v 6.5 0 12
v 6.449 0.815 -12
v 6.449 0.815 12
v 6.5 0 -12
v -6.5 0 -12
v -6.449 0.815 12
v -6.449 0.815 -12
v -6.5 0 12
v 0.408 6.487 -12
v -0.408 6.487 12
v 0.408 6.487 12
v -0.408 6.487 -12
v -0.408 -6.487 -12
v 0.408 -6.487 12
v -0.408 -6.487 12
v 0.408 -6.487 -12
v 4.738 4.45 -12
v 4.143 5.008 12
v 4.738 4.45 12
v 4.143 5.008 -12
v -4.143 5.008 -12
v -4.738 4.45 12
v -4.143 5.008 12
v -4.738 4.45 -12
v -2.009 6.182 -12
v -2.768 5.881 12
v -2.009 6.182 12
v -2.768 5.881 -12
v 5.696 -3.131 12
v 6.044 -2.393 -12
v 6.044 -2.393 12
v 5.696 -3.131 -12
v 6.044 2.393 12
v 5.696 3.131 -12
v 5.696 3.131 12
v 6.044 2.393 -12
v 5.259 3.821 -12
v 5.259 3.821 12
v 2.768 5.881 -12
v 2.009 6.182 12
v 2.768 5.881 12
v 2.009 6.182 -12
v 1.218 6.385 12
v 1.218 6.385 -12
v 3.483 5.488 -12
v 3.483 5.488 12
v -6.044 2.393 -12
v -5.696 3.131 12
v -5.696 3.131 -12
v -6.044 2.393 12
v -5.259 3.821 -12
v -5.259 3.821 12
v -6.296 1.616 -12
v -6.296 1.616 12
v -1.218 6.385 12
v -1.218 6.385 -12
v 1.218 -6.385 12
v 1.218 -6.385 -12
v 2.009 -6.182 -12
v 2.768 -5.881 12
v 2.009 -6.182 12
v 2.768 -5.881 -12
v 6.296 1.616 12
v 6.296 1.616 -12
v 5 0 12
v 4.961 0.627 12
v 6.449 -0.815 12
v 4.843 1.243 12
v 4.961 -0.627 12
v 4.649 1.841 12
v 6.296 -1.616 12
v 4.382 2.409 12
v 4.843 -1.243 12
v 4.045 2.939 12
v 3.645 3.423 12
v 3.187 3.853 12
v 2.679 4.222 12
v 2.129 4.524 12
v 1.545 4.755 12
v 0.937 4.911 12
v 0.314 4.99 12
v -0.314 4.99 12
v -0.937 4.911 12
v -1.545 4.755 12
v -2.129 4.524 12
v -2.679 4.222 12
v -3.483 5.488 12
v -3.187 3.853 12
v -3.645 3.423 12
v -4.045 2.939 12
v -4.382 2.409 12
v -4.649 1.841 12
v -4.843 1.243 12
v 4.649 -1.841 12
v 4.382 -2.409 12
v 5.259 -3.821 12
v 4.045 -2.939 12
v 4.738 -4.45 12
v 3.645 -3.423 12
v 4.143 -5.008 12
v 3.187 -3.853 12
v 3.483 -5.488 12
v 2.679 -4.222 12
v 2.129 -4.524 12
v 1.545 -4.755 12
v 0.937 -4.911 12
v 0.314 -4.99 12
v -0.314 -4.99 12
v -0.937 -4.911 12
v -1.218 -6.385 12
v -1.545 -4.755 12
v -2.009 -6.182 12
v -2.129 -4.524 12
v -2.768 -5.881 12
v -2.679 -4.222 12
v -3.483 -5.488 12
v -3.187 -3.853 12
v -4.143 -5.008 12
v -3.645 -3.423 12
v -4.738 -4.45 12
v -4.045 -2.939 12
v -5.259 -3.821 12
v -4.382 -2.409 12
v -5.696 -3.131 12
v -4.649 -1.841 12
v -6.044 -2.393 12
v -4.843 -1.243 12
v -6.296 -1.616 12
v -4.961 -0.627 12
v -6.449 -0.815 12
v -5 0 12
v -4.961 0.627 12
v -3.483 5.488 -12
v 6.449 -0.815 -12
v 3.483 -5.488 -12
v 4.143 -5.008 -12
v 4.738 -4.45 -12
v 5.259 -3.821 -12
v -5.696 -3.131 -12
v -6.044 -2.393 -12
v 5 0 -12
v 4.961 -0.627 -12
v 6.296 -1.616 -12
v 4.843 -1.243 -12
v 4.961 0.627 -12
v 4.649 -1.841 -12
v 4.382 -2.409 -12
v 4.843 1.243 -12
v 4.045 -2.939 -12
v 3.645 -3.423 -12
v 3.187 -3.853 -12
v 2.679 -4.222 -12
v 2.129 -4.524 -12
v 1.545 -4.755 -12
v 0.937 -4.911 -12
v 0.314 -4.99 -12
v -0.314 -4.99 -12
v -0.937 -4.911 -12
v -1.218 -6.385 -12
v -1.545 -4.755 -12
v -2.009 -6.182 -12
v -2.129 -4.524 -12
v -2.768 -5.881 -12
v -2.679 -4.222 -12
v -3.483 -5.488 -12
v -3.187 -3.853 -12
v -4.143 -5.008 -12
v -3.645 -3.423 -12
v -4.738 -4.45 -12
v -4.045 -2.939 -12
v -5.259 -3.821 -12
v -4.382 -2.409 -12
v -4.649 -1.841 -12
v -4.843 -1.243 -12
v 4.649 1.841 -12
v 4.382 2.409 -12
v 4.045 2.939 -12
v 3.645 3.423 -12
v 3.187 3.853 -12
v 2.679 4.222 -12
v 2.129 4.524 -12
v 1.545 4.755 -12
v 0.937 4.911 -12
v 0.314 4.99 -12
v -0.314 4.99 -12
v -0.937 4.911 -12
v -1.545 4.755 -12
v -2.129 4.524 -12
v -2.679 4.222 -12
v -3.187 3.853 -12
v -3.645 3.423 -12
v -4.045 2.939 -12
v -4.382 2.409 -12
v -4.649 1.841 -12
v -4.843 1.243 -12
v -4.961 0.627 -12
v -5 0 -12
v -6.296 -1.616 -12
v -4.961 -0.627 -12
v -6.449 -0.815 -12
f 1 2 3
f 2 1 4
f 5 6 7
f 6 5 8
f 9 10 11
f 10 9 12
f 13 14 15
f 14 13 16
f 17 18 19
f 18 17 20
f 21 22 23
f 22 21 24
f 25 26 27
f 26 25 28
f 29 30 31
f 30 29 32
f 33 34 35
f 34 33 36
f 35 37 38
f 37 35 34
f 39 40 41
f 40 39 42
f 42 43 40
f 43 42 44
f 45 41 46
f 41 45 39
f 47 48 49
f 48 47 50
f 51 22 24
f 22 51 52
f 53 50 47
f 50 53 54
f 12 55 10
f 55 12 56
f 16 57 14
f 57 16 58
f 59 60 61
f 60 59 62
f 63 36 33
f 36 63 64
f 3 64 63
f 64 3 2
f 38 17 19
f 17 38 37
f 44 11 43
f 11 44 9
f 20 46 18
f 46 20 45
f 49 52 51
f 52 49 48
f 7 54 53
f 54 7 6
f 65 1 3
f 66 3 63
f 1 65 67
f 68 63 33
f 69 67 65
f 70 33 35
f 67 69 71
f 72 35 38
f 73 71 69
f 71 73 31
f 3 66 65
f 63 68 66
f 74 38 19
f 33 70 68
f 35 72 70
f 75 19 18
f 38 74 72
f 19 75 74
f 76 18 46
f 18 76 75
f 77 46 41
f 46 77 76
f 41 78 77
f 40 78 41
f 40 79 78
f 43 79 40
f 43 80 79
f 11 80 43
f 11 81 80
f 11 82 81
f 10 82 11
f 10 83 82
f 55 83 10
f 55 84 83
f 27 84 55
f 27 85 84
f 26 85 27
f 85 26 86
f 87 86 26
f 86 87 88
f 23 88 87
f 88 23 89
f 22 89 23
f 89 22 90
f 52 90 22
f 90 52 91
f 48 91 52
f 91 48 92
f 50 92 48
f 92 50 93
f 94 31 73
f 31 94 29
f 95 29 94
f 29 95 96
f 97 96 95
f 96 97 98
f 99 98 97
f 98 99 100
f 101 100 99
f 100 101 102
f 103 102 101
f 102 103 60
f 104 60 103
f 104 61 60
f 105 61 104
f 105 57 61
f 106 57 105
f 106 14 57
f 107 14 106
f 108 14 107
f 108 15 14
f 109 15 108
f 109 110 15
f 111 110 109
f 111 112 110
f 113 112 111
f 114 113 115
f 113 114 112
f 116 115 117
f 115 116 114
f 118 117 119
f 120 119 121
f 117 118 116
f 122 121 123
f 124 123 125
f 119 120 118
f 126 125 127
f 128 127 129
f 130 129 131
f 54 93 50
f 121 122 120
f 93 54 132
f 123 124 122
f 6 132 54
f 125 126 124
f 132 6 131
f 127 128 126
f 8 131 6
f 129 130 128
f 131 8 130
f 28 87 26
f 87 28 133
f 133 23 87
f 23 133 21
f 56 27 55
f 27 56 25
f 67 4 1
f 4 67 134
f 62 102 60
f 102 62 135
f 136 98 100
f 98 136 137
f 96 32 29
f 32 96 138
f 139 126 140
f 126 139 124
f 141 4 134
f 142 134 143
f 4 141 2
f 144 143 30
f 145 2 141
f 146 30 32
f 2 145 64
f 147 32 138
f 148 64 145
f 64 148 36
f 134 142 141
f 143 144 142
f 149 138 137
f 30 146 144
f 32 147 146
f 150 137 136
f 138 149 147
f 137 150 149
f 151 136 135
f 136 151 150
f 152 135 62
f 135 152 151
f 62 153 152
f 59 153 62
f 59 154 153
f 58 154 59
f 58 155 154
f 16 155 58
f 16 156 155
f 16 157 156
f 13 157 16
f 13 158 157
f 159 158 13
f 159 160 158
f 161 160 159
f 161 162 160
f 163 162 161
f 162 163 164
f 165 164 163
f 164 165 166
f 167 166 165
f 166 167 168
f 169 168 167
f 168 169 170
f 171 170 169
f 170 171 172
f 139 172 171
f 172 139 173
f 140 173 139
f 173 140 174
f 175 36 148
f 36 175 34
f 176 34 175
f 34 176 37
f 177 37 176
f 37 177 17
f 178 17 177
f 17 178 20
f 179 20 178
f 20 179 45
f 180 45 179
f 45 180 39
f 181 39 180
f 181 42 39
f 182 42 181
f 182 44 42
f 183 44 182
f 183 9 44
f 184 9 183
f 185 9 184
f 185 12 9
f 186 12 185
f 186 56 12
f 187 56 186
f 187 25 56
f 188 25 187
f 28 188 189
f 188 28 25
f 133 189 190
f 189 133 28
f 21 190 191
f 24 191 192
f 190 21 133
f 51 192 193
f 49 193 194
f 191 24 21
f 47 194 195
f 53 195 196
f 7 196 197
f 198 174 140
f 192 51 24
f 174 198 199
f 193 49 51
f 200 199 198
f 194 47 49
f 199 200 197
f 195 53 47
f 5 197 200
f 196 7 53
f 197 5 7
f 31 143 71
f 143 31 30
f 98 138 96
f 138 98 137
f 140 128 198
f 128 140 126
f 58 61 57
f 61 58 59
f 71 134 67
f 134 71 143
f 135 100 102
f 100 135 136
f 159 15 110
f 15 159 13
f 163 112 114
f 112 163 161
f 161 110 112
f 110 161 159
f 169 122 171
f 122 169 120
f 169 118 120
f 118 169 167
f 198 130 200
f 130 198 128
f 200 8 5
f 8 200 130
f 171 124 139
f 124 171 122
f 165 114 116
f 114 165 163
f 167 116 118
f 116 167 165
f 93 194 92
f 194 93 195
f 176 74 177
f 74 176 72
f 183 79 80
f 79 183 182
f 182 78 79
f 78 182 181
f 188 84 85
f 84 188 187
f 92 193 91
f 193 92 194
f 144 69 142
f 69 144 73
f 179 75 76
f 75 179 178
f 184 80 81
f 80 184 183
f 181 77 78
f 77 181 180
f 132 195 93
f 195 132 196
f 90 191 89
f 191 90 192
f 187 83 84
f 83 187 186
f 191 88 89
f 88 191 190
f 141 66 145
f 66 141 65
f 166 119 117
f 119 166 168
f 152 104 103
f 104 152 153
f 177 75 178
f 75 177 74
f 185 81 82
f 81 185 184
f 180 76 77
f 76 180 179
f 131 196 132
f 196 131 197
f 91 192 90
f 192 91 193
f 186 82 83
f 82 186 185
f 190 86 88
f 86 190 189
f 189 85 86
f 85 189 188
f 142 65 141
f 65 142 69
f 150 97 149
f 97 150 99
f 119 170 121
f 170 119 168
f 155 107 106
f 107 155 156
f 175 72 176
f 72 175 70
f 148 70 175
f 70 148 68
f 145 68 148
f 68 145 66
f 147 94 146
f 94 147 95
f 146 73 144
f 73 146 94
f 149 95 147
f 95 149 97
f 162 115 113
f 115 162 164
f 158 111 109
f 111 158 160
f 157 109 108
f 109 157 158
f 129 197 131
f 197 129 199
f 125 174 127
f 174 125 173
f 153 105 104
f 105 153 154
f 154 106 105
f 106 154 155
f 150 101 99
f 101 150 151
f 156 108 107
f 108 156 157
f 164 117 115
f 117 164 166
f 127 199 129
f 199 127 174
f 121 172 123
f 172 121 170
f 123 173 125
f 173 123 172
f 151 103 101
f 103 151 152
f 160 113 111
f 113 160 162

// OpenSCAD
$fn = 50;


difference() {
	union() {
		translate(v = [0, 0, -12.0000000000]) {
			cylinder(h = 24, r = 6.5000000000);
		}
	}
	union() {
		translate(v = [0, 0, -100.0000000000]) {
			cylinder(h = 200, r = 5);
		}
	}
}
